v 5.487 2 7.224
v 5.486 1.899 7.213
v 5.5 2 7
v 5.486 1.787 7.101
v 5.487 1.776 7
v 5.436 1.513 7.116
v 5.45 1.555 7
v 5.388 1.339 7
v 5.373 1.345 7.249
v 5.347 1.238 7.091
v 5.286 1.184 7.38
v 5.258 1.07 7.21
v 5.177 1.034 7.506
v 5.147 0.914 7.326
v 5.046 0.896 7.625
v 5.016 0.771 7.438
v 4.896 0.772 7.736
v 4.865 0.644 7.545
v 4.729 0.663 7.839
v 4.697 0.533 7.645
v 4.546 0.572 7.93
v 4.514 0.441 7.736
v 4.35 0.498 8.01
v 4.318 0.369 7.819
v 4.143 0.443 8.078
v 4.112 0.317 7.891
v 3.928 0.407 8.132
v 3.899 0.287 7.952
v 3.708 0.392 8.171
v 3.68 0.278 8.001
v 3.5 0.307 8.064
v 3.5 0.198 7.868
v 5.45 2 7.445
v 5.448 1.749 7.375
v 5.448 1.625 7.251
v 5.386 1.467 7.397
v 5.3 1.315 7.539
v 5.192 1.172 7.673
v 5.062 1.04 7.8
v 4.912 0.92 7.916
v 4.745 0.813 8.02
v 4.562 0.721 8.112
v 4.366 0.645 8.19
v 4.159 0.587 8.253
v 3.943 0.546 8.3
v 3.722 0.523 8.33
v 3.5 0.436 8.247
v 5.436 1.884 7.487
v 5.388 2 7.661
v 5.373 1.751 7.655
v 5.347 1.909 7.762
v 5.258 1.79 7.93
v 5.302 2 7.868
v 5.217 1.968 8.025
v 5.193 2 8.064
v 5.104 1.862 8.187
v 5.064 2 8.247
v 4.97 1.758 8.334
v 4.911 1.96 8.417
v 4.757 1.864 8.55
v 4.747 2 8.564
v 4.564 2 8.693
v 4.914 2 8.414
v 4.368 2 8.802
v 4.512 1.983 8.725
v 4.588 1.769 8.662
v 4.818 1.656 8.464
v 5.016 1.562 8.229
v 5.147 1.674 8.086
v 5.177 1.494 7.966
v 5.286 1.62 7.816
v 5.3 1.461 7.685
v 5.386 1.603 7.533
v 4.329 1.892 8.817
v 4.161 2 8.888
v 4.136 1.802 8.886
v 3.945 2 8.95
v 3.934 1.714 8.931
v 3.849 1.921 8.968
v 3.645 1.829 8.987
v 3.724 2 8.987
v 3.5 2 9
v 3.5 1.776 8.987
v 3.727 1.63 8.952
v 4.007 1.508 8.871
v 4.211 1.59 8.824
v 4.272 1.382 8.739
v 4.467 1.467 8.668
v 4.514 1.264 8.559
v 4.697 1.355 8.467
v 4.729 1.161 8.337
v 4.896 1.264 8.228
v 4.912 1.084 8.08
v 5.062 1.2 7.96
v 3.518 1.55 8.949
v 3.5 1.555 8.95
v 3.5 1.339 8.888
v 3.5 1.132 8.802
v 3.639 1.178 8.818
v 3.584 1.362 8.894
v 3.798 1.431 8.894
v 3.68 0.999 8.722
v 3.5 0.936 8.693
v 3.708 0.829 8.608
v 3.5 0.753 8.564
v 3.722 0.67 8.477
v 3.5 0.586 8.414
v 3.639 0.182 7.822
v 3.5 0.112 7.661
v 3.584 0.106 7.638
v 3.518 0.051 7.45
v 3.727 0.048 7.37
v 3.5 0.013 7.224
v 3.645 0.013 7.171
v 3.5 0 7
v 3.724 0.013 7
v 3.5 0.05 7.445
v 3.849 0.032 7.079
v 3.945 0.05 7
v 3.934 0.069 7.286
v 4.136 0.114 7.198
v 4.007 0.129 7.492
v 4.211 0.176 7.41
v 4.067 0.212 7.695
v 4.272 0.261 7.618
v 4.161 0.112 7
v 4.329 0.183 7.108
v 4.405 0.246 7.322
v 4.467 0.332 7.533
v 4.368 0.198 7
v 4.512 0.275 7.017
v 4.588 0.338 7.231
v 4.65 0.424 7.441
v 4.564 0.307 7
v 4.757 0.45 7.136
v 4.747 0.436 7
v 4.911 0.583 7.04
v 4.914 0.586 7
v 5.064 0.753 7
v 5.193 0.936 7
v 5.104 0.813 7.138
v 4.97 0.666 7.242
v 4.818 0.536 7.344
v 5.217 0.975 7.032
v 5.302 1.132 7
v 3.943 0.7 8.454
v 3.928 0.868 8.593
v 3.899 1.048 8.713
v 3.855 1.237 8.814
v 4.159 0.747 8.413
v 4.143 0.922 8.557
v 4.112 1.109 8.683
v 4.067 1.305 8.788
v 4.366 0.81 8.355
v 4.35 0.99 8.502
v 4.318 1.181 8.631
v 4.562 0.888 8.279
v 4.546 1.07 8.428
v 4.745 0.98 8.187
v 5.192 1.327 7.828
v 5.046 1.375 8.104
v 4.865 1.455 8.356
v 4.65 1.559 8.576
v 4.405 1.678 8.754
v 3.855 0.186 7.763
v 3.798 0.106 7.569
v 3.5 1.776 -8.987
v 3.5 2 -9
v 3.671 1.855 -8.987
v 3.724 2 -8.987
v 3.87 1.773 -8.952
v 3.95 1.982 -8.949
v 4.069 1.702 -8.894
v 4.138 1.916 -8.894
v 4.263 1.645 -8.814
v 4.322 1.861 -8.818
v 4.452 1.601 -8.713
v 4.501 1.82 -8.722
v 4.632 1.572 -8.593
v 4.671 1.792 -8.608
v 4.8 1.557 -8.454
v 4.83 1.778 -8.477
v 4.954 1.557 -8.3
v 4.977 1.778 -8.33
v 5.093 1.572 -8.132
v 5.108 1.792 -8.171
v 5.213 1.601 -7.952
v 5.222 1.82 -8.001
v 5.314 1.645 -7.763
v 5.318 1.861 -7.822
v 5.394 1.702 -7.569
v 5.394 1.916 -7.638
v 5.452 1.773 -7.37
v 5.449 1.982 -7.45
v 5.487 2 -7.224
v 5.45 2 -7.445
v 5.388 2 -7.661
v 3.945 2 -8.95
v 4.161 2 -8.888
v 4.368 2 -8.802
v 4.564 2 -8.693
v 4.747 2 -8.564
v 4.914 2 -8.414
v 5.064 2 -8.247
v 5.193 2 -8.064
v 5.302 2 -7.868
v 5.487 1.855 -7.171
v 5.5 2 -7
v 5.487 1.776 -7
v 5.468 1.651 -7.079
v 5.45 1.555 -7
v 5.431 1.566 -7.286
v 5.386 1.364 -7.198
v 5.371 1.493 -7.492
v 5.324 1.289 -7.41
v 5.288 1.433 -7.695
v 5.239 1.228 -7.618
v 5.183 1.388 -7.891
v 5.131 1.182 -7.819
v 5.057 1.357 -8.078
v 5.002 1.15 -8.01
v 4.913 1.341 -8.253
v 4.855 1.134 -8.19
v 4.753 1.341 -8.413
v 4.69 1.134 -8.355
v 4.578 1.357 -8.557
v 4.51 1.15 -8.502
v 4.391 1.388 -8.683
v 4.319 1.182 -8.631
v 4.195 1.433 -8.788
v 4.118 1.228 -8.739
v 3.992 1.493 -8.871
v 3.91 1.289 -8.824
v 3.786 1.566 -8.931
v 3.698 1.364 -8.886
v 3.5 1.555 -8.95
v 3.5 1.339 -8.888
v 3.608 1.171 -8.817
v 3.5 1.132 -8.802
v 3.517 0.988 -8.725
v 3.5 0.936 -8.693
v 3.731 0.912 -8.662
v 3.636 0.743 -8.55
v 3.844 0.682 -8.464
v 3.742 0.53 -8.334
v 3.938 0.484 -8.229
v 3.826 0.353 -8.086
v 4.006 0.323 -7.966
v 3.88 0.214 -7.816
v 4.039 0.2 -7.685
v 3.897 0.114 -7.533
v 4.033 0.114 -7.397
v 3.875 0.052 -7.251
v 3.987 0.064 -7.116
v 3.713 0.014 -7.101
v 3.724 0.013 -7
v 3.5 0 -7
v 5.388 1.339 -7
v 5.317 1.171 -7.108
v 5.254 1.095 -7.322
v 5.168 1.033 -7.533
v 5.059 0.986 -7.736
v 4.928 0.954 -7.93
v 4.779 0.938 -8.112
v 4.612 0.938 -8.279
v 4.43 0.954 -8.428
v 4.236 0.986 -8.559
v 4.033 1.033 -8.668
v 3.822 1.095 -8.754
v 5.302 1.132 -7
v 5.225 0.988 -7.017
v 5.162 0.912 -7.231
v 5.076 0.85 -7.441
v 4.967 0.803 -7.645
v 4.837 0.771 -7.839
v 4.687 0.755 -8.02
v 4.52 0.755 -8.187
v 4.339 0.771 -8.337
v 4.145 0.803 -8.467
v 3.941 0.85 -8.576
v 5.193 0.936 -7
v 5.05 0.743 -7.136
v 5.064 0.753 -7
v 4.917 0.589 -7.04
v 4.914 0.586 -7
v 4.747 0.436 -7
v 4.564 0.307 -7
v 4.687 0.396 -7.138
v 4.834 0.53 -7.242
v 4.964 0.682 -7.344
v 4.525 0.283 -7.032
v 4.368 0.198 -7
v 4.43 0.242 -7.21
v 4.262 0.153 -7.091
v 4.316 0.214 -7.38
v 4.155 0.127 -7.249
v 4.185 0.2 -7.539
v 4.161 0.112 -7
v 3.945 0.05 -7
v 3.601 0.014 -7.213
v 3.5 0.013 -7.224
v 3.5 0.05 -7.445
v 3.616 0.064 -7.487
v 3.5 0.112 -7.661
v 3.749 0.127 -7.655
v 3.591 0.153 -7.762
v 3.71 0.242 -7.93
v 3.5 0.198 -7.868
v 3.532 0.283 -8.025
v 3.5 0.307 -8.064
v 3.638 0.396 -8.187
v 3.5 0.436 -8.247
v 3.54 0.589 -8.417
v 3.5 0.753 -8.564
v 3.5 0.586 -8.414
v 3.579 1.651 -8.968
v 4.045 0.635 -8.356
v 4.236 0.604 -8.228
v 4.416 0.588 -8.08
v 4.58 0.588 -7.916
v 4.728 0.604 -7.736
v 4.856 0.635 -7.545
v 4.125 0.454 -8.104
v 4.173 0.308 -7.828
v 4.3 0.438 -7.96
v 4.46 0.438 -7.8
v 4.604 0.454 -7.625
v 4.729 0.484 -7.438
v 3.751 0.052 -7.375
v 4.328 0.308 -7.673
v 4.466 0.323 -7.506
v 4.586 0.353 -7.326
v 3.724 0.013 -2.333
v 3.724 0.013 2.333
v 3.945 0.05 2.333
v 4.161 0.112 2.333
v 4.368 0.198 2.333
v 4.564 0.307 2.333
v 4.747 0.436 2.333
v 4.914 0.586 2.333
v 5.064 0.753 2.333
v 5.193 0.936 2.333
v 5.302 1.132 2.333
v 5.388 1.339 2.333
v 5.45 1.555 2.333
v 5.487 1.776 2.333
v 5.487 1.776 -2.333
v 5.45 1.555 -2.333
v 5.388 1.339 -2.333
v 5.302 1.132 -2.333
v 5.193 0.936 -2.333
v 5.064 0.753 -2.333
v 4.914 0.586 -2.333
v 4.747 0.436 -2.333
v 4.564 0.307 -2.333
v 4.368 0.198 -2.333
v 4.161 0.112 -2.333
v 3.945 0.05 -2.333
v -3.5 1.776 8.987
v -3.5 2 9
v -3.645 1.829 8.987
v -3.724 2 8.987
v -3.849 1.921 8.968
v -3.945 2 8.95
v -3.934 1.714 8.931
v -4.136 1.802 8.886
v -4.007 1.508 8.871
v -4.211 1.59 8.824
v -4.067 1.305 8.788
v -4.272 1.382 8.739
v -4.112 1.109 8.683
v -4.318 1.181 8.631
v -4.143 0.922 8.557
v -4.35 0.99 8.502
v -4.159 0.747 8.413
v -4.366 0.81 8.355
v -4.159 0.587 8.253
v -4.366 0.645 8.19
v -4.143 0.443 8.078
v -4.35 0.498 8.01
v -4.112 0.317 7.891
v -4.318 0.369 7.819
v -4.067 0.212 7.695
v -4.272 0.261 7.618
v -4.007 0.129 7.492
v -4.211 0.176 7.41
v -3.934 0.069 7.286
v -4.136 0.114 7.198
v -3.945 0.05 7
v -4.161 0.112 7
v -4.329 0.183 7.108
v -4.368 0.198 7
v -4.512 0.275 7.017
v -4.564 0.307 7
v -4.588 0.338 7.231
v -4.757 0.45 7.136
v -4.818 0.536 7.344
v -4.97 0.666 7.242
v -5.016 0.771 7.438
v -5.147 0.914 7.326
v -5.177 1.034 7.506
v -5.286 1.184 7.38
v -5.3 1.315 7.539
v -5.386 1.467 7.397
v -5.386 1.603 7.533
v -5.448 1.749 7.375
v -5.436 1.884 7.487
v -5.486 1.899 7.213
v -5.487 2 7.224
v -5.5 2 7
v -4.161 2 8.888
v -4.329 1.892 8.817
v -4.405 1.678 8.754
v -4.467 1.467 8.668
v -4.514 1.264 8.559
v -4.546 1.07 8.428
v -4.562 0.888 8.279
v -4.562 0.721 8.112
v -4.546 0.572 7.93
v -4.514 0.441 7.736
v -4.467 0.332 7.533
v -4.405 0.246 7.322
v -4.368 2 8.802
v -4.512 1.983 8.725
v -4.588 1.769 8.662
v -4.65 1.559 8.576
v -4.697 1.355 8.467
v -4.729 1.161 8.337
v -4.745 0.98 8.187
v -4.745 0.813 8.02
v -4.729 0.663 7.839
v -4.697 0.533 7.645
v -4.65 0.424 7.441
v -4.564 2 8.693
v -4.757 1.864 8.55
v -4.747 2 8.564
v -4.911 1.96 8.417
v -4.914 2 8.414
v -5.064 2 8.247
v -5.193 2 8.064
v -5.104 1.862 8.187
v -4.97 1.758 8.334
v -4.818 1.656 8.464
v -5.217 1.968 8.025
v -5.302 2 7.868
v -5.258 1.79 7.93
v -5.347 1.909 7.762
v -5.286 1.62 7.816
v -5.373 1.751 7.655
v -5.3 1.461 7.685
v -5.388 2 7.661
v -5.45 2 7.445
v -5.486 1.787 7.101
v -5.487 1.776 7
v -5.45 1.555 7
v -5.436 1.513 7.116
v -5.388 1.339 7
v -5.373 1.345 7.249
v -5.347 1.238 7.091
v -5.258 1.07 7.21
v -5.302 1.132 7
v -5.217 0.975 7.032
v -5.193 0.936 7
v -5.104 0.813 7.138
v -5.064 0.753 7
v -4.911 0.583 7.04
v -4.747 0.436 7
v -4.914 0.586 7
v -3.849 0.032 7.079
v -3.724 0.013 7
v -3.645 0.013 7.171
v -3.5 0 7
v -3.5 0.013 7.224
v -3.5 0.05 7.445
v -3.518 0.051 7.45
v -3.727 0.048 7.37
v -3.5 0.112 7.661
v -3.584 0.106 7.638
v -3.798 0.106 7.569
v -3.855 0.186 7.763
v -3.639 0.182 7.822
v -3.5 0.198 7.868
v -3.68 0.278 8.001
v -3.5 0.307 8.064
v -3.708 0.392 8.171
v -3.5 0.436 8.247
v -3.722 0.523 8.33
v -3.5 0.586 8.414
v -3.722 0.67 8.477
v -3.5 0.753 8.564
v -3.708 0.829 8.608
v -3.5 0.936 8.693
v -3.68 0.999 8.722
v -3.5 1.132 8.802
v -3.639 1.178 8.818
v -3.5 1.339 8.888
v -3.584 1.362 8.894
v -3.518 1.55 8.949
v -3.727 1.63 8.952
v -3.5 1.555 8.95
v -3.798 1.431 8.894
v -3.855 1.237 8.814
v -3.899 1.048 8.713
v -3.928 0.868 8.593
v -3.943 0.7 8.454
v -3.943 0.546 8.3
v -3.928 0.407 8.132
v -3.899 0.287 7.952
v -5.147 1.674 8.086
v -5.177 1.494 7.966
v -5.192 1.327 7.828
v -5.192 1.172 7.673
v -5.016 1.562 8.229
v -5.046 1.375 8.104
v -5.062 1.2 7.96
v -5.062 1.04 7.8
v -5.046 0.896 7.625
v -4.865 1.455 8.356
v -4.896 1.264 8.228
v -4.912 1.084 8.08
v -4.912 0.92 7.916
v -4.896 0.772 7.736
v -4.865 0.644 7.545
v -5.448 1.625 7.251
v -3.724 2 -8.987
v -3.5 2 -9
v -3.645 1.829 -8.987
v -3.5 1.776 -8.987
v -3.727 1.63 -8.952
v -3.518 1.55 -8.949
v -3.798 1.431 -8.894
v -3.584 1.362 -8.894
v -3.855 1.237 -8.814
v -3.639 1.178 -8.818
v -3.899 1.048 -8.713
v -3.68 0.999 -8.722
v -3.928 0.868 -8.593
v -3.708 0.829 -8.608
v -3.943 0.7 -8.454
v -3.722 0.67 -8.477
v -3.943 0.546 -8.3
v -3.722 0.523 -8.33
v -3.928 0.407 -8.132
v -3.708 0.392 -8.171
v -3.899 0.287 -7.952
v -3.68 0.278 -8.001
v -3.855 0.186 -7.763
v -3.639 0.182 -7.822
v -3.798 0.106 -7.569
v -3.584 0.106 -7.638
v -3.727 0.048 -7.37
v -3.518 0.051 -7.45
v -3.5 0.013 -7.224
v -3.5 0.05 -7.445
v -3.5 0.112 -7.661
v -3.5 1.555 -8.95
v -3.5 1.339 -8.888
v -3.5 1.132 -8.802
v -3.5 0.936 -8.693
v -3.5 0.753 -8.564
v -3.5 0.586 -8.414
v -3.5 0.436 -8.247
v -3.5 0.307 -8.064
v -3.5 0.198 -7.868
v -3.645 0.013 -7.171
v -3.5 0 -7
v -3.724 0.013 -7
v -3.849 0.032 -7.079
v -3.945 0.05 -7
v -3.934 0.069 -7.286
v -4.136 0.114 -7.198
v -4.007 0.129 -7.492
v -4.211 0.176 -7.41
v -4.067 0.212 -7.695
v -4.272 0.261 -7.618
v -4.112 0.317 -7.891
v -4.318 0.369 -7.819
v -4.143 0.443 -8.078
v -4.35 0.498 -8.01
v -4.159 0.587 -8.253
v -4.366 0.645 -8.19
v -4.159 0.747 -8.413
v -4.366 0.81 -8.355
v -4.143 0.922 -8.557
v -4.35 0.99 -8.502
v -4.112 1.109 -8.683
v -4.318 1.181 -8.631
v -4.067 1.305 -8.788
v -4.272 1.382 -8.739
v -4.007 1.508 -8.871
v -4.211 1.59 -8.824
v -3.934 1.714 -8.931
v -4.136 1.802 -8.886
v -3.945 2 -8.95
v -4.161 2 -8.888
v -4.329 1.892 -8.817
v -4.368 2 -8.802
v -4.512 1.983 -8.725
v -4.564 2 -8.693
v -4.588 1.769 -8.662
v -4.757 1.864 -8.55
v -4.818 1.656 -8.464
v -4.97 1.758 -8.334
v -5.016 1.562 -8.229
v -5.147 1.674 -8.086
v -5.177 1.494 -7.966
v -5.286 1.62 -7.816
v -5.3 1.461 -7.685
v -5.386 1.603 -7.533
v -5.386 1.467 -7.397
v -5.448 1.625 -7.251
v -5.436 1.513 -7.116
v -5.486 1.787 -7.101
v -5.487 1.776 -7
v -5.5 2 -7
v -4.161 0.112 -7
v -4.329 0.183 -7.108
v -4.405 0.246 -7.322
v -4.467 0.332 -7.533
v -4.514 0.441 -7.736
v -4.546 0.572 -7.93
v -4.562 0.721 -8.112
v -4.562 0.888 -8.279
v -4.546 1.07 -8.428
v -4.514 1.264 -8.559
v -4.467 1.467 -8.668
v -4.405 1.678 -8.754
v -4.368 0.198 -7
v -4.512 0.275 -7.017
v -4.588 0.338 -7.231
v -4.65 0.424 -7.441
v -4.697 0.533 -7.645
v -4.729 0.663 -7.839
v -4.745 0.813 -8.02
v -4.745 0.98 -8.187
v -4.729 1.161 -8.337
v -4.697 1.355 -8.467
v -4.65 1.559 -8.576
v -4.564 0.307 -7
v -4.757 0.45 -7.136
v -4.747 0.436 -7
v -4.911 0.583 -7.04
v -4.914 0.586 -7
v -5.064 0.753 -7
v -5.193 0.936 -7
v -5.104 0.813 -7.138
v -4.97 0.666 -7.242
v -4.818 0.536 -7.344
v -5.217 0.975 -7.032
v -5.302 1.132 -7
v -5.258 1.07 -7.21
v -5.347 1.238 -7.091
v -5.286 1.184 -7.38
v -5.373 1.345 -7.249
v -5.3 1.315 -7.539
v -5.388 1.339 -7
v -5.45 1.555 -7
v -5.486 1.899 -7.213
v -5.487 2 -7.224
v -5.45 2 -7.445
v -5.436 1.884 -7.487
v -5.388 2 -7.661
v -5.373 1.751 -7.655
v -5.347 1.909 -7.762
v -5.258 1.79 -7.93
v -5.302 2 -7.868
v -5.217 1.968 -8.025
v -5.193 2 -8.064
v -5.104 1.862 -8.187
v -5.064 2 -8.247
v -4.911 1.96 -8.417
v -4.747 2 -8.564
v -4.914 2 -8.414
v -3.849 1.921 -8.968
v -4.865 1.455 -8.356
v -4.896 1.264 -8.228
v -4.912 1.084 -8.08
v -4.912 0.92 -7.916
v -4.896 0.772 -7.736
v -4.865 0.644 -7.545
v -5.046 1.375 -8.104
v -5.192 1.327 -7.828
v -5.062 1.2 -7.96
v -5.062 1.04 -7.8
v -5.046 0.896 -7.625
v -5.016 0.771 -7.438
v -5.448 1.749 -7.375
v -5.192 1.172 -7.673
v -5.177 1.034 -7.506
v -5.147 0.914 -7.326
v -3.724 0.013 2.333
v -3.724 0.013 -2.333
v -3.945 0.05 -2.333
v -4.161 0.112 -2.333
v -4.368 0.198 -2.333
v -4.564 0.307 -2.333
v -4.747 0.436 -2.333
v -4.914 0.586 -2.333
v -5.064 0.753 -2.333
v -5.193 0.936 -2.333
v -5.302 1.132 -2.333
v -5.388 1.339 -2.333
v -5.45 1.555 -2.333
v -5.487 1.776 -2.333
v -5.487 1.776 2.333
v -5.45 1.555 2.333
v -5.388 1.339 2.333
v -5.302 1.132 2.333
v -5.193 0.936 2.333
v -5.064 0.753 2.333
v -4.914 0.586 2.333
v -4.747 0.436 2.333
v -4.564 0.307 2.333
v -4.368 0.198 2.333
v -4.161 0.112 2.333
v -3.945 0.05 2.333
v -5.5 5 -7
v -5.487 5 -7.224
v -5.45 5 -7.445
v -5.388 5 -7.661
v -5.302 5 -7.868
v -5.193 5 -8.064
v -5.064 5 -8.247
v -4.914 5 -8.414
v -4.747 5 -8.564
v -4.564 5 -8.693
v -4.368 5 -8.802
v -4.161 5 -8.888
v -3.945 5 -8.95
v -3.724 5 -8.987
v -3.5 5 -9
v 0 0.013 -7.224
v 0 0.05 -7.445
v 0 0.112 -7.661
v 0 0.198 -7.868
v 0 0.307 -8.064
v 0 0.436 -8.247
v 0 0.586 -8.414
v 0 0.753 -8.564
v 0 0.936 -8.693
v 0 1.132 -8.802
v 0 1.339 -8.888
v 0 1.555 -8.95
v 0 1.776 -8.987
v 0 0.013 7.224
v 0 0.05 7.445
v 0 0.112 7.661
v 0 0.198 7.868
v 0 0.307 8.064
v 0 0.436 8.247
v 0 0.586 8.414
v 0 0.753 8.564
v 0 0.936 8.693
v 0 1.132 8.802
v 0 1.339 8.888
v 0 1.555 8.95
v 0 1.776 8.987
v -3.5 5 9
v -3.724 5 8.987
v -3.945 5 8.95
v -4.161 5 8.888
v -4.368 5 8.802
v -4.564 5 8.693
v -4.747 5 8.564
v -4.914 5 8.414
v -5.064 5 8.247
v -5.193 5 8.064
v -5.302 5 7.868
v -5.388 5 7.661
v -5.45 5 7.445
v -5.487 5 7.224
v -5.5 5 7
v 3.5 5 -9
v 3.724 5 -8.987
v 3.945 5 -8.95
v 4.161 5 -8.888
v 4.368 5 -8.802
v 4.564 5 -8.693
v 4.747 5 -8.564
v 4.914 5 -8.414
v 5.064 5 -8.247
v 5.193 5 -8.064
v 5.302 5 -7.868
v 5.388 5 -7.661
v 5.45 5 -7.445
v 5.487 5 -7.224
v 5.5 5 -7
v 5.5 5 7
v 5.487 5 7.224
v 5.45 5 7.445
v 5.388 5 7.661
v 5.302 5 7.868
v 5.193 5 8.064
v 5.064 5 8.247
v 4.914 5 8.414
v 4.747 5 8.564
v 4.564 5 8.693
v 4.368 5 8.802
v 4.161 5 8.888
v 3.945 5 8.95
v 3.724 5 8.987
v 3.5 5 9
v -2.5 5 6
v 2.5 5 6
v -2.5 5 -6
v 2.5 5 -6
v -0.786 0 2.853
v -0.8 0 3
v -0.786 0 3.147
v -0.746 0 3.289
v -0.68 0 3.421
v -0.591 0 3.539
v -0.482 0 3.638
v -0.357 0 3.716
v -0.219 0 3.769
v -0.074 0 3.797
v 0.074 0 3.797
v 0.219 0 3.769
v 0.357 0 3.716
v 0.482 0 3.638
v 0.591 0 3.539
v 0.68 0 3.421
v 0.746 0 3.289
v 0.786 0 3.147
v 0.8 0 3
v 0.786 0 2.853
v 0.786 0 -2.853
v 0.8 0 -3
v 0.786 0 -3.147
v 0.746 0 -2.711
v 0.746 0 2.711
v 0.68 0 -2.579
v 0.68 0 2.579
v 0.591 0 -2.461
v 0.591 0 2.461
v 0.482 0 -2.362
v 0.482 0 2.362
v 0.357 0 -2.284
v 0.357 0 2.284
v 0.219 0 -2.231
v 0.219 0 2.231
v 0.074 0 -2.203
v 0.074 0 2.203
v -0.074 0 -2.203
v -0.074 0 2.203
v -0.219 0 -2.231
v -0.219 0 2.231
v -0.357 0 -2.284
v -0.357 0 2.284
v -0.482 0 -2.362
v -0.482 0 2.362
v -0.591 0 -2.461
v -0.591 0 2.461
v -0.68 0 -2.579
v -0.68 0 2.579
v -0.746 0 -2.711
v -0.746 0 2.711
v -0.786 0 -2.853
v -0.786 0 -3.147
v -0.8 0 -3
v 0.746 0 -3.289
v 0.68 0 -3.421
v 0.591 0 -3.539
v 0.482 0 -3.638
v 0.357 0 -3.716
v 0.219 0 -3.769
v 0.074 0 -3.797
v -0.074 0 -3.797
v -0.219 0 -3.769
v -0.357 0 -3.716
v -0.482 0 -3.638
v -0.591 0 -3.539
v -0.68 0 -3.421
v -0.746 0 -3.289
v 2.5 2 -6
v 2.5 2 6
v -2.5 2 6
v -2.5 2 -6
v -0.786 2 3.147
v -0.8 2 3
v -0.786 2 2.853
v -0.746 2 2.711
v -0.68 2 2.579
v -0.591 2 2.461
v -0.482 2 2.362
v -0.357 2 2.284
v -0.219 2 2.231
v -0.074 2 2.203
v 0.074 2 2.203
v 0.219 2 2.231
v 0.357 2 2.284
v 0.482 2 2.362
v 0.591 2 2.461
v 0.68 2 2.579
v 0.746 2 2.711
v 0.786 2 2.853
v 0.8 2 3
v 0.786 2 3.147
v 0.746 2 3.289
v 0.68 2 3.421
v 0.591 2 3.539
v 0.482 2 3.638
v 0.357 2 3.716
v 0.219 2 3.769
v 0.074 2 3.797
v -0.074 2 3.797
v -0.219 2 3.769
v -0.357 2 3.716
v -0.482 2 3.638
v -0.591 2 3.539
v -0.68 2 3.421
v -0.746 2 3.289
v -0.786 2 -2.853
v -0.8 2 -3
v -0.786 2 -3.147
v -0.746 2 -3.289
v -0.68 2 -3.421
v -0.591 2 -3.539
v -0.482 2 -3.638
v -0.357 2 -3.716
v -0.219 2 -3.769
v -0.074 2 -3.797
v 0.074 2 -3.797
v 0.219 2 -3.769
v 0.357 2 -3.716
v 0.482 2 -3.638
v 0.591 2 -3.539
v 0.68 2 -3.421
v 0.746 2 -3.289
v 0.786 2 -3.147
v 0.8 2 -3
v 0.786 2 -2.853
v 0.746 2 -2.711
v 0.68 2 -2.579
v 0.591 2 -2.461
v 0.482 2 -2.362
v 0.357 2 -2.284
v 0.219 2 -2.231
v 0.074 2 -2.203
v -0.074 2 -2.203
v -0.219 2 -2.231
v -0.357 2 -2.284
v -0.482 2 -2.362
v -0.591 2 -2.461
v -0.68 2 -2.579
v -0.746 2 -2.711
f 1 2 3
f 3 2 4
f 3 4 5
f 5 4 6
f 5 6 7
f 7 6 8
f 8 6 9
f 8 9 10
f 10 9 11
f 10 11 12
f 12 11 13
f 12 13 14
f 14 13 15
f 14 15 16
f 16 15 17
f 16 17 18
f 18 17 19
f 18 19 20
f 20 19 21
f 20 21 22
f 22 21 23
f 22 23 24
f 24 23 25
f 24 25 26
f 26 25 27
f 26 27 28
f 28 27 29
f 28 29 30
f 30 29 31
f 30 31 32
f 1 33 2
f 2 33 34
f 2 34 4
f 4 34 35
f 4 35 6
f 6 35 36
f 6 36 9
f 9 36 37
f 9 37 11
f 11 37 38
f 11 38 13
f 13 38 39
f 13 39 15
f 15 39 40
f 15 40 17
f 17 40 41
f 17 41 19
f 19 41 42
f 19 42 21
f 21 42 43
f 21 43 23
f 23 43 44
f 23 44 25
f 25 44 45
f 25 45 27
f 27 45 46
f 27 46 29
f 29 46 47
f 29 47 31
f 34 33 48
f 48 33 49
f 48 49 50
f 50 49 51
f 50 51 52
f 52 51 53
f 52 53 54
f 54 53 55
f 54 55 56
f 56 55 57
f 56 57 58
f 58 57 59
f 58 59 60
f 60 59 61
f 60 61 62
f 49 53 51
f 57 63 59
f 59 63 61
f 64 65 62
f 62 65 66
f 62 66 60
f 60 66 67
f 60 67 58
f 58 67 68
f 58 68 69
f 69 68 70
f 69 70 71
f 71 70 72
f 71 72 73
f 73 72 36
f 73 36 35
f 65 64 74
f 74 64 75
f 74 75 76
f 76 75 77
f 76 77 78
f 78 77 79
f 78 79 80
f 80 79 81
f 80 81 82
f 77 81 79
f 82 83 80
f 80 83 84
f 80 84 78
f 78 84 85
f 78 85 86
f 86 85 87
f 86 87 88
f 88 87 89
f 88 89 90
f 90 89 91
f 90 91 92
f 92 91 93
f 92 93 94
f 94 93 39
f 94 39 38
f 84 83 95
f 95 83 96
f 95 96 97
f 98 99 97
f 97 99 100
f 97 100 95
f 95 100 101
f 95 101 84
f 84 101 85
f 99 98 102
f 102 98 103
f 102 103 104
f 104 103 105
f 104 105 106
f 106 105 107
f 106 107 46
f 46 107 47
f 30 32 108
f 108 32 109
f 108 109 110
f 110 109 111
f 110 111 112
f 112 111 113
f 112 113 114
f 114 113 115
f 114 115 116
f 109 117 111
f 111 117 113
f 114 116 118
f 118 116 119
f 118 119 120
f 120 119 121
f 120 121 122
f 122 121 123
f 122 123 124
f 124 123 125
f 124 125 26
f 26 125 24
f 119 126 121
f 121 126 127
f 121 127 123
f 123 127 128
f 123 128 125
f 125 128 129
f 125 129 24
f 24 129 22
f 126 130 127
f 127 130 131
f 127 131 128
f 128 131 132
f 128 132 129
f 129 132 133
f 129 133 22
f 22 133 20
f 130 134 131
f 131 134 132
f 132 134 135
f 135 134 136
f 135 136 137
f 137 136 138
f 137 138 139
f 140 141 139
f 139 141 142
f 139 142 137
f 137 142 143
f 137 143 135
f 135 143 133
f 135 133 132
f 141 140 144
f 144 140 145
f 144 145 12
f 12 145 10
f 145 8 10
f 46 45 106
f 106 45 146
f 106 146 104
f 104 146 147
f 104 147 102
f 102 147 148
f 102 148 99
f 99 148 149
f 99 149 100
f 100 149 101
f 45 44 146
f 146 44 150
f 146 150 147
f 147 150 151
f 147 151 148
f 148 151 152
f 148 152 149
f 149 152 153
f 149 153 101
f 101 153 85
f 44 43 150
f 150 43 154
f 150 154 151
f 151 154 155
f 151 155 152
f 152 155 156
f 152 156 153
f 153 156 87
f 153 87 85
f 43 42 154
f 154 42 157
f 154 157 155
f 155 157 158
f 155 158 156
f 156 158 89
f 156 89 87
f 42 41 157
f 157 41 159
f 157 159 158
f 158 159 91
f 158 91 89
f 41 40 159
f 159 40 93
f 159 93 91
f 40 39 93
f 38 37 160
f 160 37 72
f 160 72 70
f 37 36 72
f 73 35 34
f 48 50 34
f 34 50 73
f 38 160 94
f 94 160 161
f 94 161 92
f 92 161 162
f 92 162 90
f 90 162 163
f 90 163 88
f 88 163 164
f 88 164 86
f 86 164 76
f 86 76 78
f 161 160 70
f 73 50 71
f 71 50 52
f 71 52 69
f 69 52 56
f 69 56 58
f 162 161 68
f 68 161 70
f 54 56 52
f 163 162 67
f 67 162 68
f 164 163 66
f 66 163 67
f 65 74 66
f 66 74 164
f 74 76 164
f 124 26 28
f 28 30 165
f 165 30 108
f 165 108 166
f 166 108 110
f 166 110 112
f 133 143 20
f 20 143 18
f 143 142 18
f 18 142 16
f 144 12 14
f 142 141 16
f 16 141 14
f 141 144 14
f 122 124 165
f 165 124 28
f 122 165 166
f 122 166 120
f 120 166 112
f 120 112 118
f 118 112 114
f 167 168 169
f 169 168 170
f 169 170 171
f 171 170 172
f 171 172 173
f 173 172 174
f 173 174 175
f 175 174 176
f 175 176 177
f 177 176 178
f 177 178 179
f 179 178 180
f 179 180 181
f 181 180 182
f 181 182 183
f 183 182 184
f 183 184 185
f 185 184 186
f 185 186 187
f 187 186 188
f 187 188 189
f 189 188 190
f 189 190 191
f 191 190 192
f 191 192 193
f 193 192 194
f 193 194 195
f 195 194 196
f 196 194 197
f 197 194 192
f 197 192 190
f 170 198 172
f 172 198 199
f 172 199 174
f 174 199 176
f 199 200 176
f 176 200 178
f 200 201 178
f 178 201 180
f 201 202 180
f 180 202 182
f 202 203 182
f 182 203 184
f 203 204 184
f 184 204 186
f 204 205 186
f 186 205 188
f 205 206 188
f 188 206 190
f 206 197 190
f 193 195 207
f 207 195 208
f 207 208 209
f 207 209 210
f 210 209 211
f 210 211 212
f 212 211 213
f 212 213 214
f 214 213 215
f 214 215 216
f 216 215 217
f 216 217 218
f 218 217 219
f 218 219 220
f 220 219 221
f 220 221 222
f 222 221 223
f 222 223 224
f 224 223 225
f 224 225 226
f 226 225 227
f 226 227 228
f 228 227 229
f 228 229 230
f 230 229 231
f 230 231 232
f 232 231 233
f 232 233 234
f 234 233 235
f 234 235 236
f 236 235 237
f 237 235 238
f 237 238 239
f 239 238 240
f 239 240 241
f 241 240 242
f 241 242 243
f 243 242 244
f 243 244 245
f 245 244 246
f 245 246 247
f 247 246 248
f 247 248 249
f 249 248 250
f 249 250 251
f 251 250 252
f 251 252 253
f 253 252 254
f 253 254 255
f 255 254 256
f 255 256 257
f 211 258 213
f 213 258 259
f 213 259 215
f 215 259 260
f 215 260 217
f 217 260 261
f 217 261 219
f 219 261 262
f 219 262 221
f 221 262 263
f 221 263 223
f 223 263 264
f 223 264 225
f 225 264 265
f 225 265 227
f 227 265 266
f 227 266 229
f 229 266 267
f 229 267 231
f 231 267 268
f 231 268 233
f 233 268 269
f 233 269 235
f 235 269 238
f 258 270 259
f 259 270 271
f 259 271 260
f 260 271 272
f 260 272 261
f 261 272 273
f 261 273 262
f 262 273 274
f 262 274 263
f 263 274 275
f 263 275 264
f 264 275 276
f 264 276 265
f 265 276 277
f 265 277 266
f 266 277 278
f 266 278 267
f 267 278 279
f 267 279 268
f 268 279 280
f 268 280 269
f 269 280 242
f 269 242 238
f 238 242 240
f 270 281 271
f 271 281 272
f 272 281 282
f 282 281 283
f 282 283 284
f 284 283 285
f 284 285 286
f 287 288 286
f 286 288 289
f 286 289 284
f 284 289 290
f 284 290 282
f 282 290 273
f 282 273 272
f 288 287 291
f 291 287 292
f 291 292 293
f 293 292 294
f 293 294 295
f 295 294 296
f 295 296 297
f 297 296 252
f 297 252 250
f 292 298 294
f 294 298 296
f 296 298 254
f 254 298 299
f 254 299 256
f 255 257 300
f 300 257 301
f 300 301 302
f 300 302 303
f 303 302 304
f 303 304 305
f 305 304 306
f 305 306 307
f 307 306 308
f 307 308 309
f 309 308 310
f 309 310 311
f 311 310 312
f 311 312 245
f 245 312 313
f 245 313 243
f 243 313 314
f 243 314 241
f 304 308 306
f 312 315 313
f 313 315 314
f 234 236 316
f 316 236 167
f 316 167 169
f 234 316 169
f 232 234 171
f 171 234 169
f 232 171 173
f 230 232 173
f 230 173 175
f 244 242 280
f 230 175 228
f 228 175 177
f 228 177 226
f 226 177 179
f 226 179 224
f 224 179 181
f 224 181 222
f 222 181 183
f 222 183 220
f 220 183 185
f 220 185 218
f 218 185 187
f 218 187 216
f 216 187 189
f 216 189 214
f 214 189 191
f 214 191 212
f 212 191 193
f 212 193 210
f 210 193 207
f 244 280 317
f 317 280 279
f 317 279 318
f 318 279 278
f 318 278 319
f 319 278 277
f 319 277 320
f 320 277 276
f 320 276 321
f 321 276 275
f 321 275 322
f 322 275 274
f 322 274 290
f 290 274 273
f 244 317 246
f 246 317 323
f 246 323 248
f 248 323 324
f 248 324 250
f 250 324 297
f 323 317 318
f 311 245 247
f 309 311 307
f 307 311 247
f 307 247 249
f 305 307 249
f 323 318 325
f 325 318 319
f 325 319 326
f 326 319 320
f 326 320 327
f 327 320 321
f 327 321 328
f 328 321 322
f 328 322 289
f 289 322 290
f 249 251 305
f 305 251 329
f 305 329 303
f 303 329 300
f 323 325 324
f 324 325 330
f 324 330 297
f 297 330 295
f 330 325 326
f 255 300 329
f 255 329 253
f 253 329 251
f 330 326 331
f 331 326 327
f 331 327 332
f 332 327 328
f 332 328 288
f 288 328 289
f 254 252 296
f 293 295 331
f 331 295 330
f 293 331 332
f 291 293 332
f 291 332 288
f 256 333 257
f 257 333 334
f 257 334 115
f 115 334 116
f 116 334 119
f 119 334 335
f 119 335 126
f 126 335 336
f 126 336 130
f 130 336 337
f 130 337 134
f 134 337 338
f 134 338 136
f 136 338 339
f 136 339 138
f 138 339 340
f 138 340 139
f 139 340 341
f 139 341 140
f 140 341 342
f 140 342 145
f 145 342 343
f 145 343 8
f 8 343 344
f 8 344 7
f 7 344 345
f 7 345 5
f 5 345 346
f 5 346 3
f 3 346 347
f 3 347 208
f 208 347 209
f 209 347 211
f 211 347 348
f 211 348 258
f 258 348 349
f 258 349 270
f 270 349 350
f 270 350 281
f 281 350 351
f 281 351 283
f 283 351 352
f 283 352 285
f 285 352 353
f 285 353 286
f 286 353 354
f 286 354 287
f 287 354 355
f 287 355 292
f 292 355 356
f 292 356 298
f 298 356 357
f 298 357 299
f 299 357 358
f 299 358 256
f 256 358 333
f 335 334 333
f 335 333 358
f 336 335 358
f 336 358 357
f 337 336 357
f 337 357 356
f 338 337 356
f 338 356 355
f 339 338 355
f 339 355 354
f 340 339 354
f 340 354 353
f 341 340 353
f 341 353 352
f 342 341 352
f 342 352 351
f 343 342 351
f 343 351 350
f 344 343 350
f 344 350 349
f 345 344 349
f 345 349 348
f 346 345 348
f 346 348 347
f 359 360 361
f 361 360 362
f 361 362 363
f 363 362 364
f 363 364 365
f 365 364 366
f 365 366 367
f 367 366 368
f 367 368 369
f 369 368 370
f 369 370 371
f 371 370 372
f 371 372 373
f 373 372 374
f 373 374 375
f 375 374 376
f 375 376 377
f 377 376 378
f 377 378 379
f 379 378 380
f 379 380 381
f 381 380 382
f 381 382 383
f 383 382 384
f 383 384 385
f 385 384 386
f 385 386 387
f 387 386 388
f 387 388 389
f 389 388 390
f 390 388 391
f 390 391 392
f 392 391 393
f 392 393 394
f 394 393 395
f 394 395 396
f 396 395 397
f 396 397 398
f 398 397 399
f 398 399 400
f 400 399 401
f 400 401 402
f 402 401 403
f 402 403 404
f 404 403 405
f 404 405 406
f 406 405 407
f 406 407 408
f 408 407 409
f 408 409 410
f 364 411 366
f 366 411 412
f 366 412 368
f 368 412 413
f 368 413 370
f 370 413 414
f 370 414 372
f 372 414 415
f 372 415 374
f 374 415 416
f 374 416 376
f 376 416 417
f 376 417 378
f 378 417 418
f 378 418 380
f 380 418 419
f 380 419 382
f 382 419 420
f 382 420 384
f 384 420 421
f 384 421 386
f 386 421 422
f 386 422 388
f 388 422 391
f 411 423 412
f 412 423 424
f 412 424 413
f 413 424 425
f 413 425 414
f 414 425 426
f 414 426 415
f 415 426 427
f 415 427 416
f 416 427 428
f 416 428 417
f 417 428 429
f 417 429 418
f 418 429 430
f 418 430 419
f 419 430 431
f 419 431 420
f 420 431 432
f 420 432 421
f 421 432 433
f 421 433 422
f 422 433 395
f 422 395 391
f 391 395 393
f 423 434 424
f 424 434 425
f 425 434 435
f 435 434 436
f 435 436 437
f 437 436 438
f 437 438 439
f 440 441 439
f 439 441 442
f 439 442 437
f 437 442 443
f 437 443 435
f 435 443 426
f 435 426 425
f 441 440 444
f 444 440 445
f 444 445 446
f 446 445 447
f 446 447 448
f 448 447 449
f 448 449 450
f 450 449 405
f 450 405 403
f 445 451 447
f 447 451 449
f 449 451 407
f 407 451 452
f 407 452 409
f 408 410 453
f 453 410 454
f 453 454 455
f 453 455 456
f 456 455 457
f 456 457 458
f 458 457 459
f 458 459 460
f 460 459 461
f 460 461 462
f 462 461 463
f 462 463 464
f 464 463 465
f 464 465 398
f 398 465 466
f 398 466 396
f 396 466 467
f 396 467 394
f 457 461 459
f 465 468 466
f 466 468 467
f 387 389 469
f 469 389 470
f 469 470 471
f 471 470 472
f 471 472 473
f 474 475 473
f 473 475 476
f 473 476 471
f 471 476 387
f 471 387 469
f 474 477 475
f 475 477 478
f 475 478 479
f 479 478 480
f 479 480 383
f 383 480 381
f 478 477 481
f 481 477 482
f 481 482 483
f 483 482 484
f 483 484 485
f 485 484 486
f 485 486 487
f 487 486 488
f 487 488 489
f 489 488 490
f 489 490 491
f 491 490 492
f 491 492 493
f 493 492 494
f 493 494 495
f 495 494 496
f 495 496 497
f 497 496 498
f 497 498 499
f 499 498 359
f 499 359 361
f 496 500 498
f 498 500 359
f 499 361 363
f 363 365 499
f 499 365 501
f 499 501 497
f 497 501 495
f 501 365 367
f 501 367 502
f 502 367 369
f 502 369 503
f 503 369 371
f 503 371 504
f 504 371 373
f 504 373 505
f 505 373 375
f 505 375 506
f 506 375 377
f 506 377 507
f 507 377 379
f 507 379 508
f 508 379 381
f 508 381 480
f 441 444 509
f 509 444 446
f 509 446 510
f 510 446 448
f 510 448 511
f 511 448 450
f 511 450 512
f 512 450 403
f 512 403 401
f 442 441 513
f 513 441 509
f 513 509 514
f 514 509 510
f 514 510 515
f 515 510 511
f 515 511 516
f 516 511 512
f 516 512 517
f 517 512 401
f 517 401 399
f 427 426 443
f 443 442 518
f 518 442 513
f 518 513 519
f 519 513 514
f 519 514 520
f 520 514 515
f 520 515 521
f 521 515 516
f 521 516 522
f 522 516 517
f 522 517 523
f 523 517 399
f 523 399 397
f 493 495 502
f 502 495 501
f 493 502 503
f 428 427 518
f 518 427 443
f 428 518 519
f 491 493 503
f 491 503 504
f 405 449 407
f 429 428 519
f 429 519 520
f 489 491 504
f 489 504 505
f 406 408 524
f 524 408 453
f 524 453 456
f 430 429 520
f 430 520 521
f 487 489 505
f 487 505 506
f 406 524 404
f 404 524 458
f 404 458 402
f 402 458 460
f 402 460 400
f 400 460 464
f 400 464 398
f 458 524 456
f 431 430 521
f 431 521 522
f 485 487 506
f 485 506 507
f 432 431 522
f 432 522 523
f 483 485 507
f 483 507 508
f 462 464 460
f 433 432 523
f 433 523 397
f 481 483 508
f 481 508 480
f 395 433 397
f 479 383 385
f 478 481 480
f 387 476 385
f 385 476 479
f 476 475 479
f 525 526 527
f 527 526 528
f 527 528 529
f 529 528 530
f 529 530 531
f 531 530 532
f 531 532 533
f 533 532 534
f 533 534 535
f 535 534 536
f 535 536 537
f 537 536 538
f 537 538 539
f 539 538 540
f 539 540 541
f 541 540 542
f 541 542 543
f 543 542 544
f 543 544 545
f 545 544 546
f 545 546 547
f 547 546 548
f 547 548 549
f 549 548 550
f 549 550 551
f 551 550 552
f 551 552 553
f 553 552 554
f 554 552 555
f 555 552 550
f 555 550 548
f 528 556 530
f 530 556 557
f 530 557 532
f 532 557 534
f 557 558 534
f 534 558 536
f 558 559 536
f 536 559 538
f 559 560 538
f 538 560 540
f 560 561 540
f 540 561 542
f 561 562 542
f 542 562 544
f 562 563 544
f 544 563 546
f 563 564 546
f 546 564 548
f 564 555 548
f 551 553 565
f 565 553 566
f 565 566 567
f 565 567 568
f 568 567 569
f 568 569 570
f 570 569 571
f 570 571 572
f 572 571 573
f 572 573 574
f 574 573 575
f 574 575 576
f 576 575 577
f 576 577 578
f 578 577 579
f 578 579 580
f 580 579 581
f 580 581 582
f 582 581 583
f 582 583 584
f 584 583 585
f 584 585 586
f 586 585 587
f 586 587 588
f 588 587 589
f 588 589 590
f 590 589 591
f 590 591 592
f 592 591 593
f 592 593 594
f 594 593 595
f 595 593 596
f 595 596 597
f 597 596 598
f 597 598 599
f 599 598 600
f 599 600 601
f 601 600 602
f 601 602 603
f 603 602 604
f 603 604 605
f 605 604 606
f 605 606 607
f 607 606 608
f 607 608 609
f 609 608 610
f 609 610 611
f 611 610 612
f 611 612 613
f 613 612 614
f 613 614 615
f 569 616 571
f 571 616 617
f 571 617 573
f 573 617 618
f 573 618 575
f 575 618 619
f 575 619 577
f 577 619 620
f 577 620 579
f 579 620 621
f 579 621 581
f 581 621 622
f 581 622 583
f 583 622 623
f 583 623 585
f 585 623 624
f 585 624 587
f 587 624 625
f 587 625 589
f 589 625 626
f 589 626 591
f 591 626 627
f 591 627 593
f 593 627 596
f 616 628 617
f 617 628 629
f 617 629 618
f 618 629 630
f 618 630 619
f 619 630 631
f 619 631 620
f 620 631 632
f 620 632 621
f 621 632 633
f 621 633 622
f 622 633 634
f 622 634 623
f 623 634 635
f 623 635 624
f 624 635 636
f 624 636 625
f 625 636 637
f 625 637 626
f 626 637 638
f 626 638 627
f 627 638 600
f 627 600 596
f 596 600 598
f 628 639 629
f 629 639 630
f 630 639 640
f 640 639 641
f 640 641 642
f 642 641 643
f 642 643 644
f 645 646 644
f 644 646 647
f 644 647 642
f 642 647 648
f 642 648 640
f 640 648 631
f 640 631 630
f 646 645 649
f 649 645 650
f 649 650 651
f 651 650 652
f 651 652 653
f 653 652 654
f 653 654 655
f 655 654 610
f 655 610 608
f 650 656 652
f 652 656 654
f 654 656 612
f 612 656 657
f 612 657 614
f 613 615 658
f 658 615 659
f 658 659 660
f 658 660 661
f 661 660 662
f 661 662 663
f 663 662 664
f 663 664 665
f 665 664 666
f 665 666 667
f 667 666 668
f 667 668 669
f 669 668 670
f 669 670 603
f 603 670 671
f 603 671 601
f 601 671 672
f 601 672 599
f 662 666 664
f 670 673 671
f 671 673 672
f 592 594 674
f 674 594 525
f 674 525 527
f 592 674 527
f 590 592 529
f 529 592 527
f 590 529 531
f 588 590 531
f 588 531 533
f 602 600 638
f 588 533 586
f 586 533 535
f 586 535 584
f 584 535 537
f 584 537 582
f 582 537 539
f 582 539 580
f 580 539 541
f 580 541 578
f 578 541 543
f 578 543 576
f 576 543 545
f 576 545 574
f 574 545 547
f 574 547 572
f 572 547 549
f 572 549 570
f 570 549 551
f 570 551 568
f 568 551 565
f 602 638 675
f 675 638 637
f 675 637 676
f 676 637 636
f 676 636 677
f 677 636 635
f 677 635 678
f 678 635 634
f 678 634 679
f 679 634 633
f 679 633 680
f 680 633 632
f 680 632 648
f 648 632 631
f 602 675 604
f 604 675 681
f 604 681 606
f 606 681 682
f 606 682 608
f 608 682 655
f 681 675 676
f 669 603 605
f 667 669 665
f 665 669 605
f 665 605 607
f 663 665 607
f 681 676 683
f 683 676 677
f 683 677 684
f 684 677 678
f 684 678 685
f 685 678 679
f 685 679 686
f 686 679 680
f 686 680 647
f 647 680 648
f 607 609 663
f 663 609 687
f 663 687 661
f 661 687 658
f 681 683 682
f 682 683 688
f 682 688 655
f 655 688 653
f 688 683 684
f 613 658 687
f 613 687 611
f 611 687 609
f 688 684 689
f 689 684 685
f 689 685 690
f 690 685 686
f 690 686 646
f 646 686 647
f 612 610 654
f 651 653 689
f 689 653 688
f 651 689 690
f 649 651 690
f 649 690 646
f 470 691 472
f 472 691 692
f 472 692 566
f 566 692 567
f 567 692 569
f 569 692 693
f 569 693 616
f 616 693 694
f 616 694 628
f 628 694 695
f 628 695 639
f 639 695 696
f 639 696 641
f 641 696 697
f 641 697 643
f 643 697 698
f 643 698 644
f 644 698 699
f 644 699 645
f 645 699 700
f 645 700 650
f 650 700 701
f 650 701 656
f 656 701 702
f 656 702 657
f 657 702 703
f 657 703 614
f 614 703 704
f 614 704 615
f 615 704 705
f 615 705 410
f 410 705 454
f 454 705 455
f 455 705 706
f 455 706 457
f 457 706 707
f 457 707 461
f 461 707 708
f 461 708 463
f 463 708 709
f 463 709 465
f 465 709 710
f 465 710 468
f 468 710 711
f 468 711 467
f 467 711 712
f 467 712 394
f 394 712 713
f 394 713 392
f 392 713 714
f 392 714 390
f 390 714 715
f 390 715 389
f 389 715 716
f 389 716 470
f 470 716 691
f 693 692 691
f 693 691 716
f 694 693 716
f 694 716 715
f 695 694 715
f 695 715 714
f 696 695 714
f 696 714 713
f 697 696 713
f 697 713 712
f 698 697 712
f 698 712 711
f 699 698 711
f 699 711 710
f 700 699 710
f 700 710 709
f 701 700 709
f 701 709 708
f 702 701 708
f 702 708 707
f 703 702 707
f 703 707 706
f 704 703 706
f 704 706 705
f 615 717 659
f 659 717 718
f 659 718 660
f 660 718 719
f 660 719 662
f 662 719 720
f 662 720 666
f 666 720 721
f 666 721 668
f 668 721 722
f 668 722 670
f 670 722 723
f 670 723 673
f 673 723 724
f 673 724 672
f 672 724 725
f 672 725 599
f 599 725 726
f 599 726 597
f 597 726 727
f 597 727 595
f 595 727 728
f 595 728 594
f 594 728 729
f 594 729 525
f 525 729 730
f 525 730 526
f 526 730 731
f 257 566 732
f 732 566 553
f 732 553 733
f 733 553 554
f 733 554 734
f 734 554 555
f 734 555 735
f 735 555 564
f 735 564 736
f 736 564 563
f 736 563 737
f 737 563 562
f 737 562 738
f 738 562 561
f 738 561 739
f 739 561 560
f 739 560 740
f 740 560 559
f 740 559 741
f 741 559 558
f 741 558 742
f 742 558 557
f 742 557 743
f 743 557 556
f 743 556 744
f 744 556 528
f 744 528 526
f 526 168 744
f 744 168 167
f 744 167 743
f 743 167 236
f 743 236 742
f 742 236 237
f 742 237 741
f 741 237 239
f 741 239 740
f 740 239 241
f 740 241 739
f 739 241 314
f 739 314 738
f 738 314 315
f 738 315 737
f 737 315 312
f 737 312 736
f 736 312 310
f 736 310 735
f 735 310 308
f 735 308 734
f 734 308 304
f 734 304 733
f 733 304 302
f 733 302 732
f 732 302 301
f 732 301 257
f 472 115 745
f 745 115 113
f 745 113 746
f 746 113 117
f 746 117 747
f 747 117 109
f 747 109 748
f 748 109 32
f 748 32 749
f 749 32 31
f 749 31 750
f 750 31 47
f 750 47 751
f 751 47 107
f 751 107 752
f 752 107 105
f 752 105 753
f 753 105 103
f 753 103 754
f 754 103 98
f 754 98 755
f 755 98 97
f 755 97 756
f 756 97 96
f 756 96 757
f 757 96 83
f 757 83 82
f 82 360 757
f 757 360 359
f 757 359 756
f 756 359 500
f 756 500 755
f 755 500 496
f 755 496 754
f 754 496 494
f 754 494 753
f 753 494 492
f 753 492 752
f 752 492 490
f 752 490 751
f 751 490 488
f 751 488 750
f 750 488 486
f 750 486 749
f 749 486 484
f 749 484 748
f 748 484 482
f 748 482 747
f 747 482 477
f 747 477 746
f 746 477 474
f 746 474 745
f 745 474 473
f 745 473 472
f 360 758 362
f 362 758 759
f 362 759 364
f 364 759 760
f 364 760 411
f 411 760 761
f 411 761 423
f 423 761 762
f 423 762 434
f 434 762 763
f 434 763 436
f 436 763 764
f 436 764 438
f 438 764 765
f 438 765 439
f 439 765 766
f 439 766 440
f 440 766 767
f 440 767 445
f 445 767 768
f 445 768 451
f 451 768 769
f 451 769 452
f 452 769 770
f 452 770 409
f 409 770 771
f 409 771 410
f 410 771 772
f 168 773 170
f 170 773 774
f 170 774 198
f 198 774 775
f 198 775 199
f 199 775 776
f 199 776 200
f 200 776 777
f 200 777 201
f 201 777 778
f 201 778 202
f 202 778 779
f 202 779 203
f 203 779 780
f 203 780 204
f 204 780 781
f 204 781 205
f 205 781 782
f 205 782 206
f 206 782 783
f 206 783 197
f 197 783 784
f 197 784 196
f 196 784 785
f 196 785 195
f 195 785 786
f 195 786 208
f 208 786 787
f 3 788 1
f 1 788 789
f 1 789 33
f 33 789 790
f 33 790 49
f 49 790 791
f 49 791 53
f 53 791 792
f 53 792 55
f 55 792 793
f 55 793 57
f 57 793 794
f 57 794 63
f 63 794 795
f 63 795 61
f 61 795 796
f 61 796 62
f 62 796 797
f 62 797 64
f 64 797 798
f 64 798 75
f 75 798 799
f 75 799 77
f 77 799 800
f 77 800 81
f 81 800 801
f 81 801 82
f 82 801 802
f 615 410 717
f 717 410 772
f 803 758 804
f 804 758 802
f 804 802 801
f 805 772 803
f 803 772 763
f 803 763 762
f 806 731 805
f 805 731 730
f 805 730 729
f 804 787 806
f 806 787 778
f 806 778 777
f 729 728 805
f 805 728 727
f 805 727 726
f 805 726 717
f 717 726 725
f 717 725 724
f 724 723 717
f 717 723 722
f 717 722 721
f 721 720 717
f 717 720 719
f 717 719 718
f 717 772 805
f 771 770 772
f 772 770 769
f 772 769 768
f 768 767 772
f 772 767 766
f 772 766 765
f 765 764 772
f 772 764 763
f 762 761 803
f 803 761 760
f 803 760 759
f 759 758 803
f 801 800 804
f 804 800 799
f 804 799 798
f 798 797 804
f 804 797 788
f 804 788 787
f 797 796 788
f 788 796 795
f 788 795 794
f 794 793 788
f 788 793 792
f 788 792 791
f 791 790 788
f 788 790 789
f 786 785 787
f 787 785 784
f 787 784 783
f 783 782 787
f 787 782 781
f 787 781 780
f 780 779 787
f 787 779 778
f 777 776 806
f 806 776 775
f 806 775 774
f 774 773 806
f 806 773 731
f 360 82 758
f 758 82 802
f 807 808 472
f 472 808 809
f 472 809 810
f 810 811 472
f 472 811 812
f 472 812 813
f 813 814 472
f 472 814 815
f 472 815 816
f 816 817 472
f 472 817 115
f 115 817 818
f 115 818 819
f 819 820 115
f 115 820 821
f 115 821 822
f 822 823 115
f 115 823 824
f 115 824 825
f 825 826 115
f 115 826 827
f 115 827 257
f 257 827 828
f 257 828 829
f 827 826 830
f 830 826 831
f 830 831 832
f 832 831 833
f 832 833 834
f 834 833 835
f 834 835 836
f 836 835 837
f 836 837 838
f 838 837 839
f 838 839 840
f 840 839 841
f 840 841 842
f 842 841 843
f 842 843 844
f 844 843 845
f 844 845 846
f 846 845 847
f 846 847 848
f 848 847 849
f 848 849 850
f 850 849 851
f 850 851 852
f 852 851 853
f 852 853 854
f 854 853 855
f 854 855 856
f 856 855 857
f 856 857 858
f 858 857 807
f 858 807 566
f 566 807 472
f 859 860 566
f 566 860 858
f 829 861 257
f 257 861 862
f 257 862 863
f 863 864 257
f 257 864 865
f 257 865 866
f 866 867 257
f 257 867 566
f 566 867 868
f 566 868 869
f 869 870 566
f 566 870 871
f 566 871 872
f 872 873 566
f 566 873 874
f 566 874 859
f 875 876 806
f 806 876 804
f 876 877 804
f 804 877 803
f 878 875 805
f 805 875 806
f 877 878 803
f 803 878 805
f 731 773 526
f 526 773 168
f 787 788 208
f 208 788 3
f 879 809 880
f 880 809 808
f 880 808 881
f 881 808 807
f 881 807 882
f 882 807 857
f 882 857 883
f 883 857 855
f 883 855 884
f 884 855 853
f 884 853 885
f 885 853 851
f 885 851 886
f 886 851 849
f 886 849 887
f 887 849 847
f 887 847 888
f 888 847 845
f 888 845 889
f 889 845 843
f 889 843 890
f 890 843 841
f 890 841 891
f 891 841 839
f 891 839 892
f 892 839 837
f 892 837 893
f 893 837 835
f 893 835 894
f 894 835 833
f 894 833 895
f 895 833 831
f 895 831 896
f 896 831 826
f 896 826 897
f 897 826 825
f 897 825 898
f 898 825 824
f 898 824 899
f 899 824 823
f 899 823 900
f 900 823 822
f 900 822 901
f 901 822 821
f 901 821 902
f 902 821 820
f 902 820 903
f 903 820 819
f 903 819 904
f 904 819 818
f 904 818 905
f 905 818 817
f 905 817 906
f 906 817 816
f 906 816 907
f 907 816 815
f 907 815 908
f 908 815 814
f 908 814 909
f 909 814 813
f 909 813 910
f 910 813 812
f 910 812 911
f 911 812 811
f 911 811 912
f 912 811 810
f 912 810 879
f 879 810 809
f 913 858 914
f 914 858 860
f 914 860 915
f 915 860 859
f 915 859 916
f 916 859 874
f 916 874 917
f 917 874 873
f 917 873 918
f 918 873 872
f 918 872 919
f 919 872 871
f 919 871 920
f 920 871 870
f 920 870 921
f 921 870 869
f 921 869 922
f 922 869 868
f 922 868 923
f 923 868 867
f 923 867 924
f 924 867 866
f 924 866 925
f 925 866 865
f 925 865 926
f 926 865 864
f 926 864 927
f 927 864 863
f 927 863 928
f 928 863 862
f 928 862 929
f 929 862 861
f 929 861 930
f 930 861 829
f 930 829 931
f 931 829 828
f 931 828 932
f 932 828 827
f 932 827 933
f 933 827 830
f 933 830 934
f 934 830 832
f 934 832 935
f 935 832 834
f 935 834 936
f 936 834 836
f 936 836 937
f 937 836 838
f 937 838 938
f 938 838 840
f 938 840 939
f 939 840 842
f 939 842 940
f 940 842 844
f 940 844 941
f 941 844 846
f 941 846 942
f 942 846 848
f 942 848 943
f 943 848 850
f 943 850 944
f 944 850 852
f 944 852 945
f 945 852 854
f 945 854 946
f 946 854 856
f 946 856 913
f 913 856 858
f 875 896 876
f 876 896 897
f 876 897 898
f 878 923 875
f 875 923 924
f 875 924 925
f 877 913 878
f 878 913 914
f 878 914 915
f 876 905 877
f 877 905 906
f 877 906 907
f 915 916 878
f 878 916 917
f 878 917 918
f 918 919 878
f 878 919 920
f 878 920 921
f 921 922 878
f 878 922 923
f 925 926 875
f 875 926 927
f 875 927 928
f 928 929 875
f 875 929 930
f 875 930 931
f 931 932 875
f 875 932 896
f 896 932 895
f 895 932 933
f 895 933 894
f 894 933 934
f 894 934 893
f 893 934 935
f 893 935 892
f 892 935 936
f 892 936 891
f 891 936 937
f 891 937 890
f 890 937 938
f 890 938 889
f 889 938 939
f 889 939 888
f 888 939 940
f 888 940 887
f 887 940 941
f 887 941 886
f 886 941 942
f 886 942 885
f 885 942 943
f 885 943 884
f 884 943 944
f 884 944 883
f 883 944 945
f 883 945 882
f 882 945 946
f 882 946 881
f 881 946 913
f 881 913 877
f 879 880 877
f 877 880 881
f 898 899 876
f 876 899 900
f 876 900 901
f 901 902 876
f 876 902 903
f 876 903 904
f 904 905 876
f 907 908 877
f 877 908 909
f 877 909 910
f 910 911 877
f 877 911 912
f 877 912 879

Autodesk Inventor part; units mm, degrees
ref_plane "YZ Plane" through (0, 0, 0) normal (1, 0, 0) x (0, 1, 0)
ref_plane "XZ Plane" through (0, 0, 0) normal (0, 1, 0) x (-1, 0, 0)
ref_plane "XY Plane" through (0, 0, 0) normal (0, 0, 1) x (1, 0, 0)
sketch "Sketch2" plane through (0, 0, 0) normal (0, 1, 0) x (-1, 0, 0)
  line L0 (-2.5, 6) -> (2.5, 6)
  line L1 (2.5, 6) -> (2.5, -6)
  line L2 (2.5, -6) -> (-2.5, -6)
  line L3 (-2.5, -6) -> (-2.5, 6)
  line L4 (-2.5, 6) -> (2.5, -6) construction
  line L5 (2.5, 6) -> (-2.5, -6) construction
  line L6 (2.5, 0) -> (-2.5, 0)
  circle A0 centre (0, 3) radius 0.8
  circle A1 centre (0, -3) radius 0.8
  line L7 (-5.5, -9) -> (5.5, -9)
  line L8 (5.5, -9) -> (5.5, 9)
  line L9 (5.5, 9) -> (-5.5, 9)
  line L10 (-5.5, 9) -> (-5.5, -9)
  line L11 (-5.5, -9) -> (5.5, 9) construction
  line L12 (5.5, -9) -> (-5.5, 9) construction
  point P0 (0, 0)
  dimension "d2" = 5
  dimension "d3" = 12
  dimension "d4" = 1.6
  dimension "d5" = 2.5
  dimension "d6" = 3
  dimension "d7" = 11
  dimension "d8" = 18
extrude "Extrusion2" add sketch "Sketch2" along normal blind 2 contours L0 L1 L6 L3 | L6 L1 L2 L3
extrude "Extrusion3" add sketch "Sketch2" along normal blind 5 contours L10 L9 L8 L7
fillet "Fillet1" radius 2 8 edges at (-5.5, 0, 0) (0, 0, -9) (5.5, 0, 0) (0, 0, 9) (-5.5, 2.5, -9) (-5.5, 2.5, 9) (5.5, 2.5, 9) (5.5, 2.5, -9)
sketch "Sketch4" plane through (-5.5, 0, -9) normal (-1, 0, 0) x (0, 0, 1)
  line L0 (0, 0) -> (18, 0) construction
  line L1 (18, 0) -> (18, 5) construction
  line L2 (0, 0) -> (18, 0) construction
  line L3 (18, 0) -> (18, 2) construction
  line L4 (18, 2) -> (0, 2) construction
  line L5 (0, 2) -> (0, 0) construction
  line L6 (9, 0) -> (9, 7)
  line L7 (0, 5) -> (18, 5) construction
  circle A0 centre (6, 4.5) radius 1
  circle A1 centre (12, 4.5) radius 1
  dimension "d13" = 2
  dimension "d15" = 2
  dimension "d16" = 6
  dimension "d17" = 2.5
properties part number "Part1_3DPrint"
